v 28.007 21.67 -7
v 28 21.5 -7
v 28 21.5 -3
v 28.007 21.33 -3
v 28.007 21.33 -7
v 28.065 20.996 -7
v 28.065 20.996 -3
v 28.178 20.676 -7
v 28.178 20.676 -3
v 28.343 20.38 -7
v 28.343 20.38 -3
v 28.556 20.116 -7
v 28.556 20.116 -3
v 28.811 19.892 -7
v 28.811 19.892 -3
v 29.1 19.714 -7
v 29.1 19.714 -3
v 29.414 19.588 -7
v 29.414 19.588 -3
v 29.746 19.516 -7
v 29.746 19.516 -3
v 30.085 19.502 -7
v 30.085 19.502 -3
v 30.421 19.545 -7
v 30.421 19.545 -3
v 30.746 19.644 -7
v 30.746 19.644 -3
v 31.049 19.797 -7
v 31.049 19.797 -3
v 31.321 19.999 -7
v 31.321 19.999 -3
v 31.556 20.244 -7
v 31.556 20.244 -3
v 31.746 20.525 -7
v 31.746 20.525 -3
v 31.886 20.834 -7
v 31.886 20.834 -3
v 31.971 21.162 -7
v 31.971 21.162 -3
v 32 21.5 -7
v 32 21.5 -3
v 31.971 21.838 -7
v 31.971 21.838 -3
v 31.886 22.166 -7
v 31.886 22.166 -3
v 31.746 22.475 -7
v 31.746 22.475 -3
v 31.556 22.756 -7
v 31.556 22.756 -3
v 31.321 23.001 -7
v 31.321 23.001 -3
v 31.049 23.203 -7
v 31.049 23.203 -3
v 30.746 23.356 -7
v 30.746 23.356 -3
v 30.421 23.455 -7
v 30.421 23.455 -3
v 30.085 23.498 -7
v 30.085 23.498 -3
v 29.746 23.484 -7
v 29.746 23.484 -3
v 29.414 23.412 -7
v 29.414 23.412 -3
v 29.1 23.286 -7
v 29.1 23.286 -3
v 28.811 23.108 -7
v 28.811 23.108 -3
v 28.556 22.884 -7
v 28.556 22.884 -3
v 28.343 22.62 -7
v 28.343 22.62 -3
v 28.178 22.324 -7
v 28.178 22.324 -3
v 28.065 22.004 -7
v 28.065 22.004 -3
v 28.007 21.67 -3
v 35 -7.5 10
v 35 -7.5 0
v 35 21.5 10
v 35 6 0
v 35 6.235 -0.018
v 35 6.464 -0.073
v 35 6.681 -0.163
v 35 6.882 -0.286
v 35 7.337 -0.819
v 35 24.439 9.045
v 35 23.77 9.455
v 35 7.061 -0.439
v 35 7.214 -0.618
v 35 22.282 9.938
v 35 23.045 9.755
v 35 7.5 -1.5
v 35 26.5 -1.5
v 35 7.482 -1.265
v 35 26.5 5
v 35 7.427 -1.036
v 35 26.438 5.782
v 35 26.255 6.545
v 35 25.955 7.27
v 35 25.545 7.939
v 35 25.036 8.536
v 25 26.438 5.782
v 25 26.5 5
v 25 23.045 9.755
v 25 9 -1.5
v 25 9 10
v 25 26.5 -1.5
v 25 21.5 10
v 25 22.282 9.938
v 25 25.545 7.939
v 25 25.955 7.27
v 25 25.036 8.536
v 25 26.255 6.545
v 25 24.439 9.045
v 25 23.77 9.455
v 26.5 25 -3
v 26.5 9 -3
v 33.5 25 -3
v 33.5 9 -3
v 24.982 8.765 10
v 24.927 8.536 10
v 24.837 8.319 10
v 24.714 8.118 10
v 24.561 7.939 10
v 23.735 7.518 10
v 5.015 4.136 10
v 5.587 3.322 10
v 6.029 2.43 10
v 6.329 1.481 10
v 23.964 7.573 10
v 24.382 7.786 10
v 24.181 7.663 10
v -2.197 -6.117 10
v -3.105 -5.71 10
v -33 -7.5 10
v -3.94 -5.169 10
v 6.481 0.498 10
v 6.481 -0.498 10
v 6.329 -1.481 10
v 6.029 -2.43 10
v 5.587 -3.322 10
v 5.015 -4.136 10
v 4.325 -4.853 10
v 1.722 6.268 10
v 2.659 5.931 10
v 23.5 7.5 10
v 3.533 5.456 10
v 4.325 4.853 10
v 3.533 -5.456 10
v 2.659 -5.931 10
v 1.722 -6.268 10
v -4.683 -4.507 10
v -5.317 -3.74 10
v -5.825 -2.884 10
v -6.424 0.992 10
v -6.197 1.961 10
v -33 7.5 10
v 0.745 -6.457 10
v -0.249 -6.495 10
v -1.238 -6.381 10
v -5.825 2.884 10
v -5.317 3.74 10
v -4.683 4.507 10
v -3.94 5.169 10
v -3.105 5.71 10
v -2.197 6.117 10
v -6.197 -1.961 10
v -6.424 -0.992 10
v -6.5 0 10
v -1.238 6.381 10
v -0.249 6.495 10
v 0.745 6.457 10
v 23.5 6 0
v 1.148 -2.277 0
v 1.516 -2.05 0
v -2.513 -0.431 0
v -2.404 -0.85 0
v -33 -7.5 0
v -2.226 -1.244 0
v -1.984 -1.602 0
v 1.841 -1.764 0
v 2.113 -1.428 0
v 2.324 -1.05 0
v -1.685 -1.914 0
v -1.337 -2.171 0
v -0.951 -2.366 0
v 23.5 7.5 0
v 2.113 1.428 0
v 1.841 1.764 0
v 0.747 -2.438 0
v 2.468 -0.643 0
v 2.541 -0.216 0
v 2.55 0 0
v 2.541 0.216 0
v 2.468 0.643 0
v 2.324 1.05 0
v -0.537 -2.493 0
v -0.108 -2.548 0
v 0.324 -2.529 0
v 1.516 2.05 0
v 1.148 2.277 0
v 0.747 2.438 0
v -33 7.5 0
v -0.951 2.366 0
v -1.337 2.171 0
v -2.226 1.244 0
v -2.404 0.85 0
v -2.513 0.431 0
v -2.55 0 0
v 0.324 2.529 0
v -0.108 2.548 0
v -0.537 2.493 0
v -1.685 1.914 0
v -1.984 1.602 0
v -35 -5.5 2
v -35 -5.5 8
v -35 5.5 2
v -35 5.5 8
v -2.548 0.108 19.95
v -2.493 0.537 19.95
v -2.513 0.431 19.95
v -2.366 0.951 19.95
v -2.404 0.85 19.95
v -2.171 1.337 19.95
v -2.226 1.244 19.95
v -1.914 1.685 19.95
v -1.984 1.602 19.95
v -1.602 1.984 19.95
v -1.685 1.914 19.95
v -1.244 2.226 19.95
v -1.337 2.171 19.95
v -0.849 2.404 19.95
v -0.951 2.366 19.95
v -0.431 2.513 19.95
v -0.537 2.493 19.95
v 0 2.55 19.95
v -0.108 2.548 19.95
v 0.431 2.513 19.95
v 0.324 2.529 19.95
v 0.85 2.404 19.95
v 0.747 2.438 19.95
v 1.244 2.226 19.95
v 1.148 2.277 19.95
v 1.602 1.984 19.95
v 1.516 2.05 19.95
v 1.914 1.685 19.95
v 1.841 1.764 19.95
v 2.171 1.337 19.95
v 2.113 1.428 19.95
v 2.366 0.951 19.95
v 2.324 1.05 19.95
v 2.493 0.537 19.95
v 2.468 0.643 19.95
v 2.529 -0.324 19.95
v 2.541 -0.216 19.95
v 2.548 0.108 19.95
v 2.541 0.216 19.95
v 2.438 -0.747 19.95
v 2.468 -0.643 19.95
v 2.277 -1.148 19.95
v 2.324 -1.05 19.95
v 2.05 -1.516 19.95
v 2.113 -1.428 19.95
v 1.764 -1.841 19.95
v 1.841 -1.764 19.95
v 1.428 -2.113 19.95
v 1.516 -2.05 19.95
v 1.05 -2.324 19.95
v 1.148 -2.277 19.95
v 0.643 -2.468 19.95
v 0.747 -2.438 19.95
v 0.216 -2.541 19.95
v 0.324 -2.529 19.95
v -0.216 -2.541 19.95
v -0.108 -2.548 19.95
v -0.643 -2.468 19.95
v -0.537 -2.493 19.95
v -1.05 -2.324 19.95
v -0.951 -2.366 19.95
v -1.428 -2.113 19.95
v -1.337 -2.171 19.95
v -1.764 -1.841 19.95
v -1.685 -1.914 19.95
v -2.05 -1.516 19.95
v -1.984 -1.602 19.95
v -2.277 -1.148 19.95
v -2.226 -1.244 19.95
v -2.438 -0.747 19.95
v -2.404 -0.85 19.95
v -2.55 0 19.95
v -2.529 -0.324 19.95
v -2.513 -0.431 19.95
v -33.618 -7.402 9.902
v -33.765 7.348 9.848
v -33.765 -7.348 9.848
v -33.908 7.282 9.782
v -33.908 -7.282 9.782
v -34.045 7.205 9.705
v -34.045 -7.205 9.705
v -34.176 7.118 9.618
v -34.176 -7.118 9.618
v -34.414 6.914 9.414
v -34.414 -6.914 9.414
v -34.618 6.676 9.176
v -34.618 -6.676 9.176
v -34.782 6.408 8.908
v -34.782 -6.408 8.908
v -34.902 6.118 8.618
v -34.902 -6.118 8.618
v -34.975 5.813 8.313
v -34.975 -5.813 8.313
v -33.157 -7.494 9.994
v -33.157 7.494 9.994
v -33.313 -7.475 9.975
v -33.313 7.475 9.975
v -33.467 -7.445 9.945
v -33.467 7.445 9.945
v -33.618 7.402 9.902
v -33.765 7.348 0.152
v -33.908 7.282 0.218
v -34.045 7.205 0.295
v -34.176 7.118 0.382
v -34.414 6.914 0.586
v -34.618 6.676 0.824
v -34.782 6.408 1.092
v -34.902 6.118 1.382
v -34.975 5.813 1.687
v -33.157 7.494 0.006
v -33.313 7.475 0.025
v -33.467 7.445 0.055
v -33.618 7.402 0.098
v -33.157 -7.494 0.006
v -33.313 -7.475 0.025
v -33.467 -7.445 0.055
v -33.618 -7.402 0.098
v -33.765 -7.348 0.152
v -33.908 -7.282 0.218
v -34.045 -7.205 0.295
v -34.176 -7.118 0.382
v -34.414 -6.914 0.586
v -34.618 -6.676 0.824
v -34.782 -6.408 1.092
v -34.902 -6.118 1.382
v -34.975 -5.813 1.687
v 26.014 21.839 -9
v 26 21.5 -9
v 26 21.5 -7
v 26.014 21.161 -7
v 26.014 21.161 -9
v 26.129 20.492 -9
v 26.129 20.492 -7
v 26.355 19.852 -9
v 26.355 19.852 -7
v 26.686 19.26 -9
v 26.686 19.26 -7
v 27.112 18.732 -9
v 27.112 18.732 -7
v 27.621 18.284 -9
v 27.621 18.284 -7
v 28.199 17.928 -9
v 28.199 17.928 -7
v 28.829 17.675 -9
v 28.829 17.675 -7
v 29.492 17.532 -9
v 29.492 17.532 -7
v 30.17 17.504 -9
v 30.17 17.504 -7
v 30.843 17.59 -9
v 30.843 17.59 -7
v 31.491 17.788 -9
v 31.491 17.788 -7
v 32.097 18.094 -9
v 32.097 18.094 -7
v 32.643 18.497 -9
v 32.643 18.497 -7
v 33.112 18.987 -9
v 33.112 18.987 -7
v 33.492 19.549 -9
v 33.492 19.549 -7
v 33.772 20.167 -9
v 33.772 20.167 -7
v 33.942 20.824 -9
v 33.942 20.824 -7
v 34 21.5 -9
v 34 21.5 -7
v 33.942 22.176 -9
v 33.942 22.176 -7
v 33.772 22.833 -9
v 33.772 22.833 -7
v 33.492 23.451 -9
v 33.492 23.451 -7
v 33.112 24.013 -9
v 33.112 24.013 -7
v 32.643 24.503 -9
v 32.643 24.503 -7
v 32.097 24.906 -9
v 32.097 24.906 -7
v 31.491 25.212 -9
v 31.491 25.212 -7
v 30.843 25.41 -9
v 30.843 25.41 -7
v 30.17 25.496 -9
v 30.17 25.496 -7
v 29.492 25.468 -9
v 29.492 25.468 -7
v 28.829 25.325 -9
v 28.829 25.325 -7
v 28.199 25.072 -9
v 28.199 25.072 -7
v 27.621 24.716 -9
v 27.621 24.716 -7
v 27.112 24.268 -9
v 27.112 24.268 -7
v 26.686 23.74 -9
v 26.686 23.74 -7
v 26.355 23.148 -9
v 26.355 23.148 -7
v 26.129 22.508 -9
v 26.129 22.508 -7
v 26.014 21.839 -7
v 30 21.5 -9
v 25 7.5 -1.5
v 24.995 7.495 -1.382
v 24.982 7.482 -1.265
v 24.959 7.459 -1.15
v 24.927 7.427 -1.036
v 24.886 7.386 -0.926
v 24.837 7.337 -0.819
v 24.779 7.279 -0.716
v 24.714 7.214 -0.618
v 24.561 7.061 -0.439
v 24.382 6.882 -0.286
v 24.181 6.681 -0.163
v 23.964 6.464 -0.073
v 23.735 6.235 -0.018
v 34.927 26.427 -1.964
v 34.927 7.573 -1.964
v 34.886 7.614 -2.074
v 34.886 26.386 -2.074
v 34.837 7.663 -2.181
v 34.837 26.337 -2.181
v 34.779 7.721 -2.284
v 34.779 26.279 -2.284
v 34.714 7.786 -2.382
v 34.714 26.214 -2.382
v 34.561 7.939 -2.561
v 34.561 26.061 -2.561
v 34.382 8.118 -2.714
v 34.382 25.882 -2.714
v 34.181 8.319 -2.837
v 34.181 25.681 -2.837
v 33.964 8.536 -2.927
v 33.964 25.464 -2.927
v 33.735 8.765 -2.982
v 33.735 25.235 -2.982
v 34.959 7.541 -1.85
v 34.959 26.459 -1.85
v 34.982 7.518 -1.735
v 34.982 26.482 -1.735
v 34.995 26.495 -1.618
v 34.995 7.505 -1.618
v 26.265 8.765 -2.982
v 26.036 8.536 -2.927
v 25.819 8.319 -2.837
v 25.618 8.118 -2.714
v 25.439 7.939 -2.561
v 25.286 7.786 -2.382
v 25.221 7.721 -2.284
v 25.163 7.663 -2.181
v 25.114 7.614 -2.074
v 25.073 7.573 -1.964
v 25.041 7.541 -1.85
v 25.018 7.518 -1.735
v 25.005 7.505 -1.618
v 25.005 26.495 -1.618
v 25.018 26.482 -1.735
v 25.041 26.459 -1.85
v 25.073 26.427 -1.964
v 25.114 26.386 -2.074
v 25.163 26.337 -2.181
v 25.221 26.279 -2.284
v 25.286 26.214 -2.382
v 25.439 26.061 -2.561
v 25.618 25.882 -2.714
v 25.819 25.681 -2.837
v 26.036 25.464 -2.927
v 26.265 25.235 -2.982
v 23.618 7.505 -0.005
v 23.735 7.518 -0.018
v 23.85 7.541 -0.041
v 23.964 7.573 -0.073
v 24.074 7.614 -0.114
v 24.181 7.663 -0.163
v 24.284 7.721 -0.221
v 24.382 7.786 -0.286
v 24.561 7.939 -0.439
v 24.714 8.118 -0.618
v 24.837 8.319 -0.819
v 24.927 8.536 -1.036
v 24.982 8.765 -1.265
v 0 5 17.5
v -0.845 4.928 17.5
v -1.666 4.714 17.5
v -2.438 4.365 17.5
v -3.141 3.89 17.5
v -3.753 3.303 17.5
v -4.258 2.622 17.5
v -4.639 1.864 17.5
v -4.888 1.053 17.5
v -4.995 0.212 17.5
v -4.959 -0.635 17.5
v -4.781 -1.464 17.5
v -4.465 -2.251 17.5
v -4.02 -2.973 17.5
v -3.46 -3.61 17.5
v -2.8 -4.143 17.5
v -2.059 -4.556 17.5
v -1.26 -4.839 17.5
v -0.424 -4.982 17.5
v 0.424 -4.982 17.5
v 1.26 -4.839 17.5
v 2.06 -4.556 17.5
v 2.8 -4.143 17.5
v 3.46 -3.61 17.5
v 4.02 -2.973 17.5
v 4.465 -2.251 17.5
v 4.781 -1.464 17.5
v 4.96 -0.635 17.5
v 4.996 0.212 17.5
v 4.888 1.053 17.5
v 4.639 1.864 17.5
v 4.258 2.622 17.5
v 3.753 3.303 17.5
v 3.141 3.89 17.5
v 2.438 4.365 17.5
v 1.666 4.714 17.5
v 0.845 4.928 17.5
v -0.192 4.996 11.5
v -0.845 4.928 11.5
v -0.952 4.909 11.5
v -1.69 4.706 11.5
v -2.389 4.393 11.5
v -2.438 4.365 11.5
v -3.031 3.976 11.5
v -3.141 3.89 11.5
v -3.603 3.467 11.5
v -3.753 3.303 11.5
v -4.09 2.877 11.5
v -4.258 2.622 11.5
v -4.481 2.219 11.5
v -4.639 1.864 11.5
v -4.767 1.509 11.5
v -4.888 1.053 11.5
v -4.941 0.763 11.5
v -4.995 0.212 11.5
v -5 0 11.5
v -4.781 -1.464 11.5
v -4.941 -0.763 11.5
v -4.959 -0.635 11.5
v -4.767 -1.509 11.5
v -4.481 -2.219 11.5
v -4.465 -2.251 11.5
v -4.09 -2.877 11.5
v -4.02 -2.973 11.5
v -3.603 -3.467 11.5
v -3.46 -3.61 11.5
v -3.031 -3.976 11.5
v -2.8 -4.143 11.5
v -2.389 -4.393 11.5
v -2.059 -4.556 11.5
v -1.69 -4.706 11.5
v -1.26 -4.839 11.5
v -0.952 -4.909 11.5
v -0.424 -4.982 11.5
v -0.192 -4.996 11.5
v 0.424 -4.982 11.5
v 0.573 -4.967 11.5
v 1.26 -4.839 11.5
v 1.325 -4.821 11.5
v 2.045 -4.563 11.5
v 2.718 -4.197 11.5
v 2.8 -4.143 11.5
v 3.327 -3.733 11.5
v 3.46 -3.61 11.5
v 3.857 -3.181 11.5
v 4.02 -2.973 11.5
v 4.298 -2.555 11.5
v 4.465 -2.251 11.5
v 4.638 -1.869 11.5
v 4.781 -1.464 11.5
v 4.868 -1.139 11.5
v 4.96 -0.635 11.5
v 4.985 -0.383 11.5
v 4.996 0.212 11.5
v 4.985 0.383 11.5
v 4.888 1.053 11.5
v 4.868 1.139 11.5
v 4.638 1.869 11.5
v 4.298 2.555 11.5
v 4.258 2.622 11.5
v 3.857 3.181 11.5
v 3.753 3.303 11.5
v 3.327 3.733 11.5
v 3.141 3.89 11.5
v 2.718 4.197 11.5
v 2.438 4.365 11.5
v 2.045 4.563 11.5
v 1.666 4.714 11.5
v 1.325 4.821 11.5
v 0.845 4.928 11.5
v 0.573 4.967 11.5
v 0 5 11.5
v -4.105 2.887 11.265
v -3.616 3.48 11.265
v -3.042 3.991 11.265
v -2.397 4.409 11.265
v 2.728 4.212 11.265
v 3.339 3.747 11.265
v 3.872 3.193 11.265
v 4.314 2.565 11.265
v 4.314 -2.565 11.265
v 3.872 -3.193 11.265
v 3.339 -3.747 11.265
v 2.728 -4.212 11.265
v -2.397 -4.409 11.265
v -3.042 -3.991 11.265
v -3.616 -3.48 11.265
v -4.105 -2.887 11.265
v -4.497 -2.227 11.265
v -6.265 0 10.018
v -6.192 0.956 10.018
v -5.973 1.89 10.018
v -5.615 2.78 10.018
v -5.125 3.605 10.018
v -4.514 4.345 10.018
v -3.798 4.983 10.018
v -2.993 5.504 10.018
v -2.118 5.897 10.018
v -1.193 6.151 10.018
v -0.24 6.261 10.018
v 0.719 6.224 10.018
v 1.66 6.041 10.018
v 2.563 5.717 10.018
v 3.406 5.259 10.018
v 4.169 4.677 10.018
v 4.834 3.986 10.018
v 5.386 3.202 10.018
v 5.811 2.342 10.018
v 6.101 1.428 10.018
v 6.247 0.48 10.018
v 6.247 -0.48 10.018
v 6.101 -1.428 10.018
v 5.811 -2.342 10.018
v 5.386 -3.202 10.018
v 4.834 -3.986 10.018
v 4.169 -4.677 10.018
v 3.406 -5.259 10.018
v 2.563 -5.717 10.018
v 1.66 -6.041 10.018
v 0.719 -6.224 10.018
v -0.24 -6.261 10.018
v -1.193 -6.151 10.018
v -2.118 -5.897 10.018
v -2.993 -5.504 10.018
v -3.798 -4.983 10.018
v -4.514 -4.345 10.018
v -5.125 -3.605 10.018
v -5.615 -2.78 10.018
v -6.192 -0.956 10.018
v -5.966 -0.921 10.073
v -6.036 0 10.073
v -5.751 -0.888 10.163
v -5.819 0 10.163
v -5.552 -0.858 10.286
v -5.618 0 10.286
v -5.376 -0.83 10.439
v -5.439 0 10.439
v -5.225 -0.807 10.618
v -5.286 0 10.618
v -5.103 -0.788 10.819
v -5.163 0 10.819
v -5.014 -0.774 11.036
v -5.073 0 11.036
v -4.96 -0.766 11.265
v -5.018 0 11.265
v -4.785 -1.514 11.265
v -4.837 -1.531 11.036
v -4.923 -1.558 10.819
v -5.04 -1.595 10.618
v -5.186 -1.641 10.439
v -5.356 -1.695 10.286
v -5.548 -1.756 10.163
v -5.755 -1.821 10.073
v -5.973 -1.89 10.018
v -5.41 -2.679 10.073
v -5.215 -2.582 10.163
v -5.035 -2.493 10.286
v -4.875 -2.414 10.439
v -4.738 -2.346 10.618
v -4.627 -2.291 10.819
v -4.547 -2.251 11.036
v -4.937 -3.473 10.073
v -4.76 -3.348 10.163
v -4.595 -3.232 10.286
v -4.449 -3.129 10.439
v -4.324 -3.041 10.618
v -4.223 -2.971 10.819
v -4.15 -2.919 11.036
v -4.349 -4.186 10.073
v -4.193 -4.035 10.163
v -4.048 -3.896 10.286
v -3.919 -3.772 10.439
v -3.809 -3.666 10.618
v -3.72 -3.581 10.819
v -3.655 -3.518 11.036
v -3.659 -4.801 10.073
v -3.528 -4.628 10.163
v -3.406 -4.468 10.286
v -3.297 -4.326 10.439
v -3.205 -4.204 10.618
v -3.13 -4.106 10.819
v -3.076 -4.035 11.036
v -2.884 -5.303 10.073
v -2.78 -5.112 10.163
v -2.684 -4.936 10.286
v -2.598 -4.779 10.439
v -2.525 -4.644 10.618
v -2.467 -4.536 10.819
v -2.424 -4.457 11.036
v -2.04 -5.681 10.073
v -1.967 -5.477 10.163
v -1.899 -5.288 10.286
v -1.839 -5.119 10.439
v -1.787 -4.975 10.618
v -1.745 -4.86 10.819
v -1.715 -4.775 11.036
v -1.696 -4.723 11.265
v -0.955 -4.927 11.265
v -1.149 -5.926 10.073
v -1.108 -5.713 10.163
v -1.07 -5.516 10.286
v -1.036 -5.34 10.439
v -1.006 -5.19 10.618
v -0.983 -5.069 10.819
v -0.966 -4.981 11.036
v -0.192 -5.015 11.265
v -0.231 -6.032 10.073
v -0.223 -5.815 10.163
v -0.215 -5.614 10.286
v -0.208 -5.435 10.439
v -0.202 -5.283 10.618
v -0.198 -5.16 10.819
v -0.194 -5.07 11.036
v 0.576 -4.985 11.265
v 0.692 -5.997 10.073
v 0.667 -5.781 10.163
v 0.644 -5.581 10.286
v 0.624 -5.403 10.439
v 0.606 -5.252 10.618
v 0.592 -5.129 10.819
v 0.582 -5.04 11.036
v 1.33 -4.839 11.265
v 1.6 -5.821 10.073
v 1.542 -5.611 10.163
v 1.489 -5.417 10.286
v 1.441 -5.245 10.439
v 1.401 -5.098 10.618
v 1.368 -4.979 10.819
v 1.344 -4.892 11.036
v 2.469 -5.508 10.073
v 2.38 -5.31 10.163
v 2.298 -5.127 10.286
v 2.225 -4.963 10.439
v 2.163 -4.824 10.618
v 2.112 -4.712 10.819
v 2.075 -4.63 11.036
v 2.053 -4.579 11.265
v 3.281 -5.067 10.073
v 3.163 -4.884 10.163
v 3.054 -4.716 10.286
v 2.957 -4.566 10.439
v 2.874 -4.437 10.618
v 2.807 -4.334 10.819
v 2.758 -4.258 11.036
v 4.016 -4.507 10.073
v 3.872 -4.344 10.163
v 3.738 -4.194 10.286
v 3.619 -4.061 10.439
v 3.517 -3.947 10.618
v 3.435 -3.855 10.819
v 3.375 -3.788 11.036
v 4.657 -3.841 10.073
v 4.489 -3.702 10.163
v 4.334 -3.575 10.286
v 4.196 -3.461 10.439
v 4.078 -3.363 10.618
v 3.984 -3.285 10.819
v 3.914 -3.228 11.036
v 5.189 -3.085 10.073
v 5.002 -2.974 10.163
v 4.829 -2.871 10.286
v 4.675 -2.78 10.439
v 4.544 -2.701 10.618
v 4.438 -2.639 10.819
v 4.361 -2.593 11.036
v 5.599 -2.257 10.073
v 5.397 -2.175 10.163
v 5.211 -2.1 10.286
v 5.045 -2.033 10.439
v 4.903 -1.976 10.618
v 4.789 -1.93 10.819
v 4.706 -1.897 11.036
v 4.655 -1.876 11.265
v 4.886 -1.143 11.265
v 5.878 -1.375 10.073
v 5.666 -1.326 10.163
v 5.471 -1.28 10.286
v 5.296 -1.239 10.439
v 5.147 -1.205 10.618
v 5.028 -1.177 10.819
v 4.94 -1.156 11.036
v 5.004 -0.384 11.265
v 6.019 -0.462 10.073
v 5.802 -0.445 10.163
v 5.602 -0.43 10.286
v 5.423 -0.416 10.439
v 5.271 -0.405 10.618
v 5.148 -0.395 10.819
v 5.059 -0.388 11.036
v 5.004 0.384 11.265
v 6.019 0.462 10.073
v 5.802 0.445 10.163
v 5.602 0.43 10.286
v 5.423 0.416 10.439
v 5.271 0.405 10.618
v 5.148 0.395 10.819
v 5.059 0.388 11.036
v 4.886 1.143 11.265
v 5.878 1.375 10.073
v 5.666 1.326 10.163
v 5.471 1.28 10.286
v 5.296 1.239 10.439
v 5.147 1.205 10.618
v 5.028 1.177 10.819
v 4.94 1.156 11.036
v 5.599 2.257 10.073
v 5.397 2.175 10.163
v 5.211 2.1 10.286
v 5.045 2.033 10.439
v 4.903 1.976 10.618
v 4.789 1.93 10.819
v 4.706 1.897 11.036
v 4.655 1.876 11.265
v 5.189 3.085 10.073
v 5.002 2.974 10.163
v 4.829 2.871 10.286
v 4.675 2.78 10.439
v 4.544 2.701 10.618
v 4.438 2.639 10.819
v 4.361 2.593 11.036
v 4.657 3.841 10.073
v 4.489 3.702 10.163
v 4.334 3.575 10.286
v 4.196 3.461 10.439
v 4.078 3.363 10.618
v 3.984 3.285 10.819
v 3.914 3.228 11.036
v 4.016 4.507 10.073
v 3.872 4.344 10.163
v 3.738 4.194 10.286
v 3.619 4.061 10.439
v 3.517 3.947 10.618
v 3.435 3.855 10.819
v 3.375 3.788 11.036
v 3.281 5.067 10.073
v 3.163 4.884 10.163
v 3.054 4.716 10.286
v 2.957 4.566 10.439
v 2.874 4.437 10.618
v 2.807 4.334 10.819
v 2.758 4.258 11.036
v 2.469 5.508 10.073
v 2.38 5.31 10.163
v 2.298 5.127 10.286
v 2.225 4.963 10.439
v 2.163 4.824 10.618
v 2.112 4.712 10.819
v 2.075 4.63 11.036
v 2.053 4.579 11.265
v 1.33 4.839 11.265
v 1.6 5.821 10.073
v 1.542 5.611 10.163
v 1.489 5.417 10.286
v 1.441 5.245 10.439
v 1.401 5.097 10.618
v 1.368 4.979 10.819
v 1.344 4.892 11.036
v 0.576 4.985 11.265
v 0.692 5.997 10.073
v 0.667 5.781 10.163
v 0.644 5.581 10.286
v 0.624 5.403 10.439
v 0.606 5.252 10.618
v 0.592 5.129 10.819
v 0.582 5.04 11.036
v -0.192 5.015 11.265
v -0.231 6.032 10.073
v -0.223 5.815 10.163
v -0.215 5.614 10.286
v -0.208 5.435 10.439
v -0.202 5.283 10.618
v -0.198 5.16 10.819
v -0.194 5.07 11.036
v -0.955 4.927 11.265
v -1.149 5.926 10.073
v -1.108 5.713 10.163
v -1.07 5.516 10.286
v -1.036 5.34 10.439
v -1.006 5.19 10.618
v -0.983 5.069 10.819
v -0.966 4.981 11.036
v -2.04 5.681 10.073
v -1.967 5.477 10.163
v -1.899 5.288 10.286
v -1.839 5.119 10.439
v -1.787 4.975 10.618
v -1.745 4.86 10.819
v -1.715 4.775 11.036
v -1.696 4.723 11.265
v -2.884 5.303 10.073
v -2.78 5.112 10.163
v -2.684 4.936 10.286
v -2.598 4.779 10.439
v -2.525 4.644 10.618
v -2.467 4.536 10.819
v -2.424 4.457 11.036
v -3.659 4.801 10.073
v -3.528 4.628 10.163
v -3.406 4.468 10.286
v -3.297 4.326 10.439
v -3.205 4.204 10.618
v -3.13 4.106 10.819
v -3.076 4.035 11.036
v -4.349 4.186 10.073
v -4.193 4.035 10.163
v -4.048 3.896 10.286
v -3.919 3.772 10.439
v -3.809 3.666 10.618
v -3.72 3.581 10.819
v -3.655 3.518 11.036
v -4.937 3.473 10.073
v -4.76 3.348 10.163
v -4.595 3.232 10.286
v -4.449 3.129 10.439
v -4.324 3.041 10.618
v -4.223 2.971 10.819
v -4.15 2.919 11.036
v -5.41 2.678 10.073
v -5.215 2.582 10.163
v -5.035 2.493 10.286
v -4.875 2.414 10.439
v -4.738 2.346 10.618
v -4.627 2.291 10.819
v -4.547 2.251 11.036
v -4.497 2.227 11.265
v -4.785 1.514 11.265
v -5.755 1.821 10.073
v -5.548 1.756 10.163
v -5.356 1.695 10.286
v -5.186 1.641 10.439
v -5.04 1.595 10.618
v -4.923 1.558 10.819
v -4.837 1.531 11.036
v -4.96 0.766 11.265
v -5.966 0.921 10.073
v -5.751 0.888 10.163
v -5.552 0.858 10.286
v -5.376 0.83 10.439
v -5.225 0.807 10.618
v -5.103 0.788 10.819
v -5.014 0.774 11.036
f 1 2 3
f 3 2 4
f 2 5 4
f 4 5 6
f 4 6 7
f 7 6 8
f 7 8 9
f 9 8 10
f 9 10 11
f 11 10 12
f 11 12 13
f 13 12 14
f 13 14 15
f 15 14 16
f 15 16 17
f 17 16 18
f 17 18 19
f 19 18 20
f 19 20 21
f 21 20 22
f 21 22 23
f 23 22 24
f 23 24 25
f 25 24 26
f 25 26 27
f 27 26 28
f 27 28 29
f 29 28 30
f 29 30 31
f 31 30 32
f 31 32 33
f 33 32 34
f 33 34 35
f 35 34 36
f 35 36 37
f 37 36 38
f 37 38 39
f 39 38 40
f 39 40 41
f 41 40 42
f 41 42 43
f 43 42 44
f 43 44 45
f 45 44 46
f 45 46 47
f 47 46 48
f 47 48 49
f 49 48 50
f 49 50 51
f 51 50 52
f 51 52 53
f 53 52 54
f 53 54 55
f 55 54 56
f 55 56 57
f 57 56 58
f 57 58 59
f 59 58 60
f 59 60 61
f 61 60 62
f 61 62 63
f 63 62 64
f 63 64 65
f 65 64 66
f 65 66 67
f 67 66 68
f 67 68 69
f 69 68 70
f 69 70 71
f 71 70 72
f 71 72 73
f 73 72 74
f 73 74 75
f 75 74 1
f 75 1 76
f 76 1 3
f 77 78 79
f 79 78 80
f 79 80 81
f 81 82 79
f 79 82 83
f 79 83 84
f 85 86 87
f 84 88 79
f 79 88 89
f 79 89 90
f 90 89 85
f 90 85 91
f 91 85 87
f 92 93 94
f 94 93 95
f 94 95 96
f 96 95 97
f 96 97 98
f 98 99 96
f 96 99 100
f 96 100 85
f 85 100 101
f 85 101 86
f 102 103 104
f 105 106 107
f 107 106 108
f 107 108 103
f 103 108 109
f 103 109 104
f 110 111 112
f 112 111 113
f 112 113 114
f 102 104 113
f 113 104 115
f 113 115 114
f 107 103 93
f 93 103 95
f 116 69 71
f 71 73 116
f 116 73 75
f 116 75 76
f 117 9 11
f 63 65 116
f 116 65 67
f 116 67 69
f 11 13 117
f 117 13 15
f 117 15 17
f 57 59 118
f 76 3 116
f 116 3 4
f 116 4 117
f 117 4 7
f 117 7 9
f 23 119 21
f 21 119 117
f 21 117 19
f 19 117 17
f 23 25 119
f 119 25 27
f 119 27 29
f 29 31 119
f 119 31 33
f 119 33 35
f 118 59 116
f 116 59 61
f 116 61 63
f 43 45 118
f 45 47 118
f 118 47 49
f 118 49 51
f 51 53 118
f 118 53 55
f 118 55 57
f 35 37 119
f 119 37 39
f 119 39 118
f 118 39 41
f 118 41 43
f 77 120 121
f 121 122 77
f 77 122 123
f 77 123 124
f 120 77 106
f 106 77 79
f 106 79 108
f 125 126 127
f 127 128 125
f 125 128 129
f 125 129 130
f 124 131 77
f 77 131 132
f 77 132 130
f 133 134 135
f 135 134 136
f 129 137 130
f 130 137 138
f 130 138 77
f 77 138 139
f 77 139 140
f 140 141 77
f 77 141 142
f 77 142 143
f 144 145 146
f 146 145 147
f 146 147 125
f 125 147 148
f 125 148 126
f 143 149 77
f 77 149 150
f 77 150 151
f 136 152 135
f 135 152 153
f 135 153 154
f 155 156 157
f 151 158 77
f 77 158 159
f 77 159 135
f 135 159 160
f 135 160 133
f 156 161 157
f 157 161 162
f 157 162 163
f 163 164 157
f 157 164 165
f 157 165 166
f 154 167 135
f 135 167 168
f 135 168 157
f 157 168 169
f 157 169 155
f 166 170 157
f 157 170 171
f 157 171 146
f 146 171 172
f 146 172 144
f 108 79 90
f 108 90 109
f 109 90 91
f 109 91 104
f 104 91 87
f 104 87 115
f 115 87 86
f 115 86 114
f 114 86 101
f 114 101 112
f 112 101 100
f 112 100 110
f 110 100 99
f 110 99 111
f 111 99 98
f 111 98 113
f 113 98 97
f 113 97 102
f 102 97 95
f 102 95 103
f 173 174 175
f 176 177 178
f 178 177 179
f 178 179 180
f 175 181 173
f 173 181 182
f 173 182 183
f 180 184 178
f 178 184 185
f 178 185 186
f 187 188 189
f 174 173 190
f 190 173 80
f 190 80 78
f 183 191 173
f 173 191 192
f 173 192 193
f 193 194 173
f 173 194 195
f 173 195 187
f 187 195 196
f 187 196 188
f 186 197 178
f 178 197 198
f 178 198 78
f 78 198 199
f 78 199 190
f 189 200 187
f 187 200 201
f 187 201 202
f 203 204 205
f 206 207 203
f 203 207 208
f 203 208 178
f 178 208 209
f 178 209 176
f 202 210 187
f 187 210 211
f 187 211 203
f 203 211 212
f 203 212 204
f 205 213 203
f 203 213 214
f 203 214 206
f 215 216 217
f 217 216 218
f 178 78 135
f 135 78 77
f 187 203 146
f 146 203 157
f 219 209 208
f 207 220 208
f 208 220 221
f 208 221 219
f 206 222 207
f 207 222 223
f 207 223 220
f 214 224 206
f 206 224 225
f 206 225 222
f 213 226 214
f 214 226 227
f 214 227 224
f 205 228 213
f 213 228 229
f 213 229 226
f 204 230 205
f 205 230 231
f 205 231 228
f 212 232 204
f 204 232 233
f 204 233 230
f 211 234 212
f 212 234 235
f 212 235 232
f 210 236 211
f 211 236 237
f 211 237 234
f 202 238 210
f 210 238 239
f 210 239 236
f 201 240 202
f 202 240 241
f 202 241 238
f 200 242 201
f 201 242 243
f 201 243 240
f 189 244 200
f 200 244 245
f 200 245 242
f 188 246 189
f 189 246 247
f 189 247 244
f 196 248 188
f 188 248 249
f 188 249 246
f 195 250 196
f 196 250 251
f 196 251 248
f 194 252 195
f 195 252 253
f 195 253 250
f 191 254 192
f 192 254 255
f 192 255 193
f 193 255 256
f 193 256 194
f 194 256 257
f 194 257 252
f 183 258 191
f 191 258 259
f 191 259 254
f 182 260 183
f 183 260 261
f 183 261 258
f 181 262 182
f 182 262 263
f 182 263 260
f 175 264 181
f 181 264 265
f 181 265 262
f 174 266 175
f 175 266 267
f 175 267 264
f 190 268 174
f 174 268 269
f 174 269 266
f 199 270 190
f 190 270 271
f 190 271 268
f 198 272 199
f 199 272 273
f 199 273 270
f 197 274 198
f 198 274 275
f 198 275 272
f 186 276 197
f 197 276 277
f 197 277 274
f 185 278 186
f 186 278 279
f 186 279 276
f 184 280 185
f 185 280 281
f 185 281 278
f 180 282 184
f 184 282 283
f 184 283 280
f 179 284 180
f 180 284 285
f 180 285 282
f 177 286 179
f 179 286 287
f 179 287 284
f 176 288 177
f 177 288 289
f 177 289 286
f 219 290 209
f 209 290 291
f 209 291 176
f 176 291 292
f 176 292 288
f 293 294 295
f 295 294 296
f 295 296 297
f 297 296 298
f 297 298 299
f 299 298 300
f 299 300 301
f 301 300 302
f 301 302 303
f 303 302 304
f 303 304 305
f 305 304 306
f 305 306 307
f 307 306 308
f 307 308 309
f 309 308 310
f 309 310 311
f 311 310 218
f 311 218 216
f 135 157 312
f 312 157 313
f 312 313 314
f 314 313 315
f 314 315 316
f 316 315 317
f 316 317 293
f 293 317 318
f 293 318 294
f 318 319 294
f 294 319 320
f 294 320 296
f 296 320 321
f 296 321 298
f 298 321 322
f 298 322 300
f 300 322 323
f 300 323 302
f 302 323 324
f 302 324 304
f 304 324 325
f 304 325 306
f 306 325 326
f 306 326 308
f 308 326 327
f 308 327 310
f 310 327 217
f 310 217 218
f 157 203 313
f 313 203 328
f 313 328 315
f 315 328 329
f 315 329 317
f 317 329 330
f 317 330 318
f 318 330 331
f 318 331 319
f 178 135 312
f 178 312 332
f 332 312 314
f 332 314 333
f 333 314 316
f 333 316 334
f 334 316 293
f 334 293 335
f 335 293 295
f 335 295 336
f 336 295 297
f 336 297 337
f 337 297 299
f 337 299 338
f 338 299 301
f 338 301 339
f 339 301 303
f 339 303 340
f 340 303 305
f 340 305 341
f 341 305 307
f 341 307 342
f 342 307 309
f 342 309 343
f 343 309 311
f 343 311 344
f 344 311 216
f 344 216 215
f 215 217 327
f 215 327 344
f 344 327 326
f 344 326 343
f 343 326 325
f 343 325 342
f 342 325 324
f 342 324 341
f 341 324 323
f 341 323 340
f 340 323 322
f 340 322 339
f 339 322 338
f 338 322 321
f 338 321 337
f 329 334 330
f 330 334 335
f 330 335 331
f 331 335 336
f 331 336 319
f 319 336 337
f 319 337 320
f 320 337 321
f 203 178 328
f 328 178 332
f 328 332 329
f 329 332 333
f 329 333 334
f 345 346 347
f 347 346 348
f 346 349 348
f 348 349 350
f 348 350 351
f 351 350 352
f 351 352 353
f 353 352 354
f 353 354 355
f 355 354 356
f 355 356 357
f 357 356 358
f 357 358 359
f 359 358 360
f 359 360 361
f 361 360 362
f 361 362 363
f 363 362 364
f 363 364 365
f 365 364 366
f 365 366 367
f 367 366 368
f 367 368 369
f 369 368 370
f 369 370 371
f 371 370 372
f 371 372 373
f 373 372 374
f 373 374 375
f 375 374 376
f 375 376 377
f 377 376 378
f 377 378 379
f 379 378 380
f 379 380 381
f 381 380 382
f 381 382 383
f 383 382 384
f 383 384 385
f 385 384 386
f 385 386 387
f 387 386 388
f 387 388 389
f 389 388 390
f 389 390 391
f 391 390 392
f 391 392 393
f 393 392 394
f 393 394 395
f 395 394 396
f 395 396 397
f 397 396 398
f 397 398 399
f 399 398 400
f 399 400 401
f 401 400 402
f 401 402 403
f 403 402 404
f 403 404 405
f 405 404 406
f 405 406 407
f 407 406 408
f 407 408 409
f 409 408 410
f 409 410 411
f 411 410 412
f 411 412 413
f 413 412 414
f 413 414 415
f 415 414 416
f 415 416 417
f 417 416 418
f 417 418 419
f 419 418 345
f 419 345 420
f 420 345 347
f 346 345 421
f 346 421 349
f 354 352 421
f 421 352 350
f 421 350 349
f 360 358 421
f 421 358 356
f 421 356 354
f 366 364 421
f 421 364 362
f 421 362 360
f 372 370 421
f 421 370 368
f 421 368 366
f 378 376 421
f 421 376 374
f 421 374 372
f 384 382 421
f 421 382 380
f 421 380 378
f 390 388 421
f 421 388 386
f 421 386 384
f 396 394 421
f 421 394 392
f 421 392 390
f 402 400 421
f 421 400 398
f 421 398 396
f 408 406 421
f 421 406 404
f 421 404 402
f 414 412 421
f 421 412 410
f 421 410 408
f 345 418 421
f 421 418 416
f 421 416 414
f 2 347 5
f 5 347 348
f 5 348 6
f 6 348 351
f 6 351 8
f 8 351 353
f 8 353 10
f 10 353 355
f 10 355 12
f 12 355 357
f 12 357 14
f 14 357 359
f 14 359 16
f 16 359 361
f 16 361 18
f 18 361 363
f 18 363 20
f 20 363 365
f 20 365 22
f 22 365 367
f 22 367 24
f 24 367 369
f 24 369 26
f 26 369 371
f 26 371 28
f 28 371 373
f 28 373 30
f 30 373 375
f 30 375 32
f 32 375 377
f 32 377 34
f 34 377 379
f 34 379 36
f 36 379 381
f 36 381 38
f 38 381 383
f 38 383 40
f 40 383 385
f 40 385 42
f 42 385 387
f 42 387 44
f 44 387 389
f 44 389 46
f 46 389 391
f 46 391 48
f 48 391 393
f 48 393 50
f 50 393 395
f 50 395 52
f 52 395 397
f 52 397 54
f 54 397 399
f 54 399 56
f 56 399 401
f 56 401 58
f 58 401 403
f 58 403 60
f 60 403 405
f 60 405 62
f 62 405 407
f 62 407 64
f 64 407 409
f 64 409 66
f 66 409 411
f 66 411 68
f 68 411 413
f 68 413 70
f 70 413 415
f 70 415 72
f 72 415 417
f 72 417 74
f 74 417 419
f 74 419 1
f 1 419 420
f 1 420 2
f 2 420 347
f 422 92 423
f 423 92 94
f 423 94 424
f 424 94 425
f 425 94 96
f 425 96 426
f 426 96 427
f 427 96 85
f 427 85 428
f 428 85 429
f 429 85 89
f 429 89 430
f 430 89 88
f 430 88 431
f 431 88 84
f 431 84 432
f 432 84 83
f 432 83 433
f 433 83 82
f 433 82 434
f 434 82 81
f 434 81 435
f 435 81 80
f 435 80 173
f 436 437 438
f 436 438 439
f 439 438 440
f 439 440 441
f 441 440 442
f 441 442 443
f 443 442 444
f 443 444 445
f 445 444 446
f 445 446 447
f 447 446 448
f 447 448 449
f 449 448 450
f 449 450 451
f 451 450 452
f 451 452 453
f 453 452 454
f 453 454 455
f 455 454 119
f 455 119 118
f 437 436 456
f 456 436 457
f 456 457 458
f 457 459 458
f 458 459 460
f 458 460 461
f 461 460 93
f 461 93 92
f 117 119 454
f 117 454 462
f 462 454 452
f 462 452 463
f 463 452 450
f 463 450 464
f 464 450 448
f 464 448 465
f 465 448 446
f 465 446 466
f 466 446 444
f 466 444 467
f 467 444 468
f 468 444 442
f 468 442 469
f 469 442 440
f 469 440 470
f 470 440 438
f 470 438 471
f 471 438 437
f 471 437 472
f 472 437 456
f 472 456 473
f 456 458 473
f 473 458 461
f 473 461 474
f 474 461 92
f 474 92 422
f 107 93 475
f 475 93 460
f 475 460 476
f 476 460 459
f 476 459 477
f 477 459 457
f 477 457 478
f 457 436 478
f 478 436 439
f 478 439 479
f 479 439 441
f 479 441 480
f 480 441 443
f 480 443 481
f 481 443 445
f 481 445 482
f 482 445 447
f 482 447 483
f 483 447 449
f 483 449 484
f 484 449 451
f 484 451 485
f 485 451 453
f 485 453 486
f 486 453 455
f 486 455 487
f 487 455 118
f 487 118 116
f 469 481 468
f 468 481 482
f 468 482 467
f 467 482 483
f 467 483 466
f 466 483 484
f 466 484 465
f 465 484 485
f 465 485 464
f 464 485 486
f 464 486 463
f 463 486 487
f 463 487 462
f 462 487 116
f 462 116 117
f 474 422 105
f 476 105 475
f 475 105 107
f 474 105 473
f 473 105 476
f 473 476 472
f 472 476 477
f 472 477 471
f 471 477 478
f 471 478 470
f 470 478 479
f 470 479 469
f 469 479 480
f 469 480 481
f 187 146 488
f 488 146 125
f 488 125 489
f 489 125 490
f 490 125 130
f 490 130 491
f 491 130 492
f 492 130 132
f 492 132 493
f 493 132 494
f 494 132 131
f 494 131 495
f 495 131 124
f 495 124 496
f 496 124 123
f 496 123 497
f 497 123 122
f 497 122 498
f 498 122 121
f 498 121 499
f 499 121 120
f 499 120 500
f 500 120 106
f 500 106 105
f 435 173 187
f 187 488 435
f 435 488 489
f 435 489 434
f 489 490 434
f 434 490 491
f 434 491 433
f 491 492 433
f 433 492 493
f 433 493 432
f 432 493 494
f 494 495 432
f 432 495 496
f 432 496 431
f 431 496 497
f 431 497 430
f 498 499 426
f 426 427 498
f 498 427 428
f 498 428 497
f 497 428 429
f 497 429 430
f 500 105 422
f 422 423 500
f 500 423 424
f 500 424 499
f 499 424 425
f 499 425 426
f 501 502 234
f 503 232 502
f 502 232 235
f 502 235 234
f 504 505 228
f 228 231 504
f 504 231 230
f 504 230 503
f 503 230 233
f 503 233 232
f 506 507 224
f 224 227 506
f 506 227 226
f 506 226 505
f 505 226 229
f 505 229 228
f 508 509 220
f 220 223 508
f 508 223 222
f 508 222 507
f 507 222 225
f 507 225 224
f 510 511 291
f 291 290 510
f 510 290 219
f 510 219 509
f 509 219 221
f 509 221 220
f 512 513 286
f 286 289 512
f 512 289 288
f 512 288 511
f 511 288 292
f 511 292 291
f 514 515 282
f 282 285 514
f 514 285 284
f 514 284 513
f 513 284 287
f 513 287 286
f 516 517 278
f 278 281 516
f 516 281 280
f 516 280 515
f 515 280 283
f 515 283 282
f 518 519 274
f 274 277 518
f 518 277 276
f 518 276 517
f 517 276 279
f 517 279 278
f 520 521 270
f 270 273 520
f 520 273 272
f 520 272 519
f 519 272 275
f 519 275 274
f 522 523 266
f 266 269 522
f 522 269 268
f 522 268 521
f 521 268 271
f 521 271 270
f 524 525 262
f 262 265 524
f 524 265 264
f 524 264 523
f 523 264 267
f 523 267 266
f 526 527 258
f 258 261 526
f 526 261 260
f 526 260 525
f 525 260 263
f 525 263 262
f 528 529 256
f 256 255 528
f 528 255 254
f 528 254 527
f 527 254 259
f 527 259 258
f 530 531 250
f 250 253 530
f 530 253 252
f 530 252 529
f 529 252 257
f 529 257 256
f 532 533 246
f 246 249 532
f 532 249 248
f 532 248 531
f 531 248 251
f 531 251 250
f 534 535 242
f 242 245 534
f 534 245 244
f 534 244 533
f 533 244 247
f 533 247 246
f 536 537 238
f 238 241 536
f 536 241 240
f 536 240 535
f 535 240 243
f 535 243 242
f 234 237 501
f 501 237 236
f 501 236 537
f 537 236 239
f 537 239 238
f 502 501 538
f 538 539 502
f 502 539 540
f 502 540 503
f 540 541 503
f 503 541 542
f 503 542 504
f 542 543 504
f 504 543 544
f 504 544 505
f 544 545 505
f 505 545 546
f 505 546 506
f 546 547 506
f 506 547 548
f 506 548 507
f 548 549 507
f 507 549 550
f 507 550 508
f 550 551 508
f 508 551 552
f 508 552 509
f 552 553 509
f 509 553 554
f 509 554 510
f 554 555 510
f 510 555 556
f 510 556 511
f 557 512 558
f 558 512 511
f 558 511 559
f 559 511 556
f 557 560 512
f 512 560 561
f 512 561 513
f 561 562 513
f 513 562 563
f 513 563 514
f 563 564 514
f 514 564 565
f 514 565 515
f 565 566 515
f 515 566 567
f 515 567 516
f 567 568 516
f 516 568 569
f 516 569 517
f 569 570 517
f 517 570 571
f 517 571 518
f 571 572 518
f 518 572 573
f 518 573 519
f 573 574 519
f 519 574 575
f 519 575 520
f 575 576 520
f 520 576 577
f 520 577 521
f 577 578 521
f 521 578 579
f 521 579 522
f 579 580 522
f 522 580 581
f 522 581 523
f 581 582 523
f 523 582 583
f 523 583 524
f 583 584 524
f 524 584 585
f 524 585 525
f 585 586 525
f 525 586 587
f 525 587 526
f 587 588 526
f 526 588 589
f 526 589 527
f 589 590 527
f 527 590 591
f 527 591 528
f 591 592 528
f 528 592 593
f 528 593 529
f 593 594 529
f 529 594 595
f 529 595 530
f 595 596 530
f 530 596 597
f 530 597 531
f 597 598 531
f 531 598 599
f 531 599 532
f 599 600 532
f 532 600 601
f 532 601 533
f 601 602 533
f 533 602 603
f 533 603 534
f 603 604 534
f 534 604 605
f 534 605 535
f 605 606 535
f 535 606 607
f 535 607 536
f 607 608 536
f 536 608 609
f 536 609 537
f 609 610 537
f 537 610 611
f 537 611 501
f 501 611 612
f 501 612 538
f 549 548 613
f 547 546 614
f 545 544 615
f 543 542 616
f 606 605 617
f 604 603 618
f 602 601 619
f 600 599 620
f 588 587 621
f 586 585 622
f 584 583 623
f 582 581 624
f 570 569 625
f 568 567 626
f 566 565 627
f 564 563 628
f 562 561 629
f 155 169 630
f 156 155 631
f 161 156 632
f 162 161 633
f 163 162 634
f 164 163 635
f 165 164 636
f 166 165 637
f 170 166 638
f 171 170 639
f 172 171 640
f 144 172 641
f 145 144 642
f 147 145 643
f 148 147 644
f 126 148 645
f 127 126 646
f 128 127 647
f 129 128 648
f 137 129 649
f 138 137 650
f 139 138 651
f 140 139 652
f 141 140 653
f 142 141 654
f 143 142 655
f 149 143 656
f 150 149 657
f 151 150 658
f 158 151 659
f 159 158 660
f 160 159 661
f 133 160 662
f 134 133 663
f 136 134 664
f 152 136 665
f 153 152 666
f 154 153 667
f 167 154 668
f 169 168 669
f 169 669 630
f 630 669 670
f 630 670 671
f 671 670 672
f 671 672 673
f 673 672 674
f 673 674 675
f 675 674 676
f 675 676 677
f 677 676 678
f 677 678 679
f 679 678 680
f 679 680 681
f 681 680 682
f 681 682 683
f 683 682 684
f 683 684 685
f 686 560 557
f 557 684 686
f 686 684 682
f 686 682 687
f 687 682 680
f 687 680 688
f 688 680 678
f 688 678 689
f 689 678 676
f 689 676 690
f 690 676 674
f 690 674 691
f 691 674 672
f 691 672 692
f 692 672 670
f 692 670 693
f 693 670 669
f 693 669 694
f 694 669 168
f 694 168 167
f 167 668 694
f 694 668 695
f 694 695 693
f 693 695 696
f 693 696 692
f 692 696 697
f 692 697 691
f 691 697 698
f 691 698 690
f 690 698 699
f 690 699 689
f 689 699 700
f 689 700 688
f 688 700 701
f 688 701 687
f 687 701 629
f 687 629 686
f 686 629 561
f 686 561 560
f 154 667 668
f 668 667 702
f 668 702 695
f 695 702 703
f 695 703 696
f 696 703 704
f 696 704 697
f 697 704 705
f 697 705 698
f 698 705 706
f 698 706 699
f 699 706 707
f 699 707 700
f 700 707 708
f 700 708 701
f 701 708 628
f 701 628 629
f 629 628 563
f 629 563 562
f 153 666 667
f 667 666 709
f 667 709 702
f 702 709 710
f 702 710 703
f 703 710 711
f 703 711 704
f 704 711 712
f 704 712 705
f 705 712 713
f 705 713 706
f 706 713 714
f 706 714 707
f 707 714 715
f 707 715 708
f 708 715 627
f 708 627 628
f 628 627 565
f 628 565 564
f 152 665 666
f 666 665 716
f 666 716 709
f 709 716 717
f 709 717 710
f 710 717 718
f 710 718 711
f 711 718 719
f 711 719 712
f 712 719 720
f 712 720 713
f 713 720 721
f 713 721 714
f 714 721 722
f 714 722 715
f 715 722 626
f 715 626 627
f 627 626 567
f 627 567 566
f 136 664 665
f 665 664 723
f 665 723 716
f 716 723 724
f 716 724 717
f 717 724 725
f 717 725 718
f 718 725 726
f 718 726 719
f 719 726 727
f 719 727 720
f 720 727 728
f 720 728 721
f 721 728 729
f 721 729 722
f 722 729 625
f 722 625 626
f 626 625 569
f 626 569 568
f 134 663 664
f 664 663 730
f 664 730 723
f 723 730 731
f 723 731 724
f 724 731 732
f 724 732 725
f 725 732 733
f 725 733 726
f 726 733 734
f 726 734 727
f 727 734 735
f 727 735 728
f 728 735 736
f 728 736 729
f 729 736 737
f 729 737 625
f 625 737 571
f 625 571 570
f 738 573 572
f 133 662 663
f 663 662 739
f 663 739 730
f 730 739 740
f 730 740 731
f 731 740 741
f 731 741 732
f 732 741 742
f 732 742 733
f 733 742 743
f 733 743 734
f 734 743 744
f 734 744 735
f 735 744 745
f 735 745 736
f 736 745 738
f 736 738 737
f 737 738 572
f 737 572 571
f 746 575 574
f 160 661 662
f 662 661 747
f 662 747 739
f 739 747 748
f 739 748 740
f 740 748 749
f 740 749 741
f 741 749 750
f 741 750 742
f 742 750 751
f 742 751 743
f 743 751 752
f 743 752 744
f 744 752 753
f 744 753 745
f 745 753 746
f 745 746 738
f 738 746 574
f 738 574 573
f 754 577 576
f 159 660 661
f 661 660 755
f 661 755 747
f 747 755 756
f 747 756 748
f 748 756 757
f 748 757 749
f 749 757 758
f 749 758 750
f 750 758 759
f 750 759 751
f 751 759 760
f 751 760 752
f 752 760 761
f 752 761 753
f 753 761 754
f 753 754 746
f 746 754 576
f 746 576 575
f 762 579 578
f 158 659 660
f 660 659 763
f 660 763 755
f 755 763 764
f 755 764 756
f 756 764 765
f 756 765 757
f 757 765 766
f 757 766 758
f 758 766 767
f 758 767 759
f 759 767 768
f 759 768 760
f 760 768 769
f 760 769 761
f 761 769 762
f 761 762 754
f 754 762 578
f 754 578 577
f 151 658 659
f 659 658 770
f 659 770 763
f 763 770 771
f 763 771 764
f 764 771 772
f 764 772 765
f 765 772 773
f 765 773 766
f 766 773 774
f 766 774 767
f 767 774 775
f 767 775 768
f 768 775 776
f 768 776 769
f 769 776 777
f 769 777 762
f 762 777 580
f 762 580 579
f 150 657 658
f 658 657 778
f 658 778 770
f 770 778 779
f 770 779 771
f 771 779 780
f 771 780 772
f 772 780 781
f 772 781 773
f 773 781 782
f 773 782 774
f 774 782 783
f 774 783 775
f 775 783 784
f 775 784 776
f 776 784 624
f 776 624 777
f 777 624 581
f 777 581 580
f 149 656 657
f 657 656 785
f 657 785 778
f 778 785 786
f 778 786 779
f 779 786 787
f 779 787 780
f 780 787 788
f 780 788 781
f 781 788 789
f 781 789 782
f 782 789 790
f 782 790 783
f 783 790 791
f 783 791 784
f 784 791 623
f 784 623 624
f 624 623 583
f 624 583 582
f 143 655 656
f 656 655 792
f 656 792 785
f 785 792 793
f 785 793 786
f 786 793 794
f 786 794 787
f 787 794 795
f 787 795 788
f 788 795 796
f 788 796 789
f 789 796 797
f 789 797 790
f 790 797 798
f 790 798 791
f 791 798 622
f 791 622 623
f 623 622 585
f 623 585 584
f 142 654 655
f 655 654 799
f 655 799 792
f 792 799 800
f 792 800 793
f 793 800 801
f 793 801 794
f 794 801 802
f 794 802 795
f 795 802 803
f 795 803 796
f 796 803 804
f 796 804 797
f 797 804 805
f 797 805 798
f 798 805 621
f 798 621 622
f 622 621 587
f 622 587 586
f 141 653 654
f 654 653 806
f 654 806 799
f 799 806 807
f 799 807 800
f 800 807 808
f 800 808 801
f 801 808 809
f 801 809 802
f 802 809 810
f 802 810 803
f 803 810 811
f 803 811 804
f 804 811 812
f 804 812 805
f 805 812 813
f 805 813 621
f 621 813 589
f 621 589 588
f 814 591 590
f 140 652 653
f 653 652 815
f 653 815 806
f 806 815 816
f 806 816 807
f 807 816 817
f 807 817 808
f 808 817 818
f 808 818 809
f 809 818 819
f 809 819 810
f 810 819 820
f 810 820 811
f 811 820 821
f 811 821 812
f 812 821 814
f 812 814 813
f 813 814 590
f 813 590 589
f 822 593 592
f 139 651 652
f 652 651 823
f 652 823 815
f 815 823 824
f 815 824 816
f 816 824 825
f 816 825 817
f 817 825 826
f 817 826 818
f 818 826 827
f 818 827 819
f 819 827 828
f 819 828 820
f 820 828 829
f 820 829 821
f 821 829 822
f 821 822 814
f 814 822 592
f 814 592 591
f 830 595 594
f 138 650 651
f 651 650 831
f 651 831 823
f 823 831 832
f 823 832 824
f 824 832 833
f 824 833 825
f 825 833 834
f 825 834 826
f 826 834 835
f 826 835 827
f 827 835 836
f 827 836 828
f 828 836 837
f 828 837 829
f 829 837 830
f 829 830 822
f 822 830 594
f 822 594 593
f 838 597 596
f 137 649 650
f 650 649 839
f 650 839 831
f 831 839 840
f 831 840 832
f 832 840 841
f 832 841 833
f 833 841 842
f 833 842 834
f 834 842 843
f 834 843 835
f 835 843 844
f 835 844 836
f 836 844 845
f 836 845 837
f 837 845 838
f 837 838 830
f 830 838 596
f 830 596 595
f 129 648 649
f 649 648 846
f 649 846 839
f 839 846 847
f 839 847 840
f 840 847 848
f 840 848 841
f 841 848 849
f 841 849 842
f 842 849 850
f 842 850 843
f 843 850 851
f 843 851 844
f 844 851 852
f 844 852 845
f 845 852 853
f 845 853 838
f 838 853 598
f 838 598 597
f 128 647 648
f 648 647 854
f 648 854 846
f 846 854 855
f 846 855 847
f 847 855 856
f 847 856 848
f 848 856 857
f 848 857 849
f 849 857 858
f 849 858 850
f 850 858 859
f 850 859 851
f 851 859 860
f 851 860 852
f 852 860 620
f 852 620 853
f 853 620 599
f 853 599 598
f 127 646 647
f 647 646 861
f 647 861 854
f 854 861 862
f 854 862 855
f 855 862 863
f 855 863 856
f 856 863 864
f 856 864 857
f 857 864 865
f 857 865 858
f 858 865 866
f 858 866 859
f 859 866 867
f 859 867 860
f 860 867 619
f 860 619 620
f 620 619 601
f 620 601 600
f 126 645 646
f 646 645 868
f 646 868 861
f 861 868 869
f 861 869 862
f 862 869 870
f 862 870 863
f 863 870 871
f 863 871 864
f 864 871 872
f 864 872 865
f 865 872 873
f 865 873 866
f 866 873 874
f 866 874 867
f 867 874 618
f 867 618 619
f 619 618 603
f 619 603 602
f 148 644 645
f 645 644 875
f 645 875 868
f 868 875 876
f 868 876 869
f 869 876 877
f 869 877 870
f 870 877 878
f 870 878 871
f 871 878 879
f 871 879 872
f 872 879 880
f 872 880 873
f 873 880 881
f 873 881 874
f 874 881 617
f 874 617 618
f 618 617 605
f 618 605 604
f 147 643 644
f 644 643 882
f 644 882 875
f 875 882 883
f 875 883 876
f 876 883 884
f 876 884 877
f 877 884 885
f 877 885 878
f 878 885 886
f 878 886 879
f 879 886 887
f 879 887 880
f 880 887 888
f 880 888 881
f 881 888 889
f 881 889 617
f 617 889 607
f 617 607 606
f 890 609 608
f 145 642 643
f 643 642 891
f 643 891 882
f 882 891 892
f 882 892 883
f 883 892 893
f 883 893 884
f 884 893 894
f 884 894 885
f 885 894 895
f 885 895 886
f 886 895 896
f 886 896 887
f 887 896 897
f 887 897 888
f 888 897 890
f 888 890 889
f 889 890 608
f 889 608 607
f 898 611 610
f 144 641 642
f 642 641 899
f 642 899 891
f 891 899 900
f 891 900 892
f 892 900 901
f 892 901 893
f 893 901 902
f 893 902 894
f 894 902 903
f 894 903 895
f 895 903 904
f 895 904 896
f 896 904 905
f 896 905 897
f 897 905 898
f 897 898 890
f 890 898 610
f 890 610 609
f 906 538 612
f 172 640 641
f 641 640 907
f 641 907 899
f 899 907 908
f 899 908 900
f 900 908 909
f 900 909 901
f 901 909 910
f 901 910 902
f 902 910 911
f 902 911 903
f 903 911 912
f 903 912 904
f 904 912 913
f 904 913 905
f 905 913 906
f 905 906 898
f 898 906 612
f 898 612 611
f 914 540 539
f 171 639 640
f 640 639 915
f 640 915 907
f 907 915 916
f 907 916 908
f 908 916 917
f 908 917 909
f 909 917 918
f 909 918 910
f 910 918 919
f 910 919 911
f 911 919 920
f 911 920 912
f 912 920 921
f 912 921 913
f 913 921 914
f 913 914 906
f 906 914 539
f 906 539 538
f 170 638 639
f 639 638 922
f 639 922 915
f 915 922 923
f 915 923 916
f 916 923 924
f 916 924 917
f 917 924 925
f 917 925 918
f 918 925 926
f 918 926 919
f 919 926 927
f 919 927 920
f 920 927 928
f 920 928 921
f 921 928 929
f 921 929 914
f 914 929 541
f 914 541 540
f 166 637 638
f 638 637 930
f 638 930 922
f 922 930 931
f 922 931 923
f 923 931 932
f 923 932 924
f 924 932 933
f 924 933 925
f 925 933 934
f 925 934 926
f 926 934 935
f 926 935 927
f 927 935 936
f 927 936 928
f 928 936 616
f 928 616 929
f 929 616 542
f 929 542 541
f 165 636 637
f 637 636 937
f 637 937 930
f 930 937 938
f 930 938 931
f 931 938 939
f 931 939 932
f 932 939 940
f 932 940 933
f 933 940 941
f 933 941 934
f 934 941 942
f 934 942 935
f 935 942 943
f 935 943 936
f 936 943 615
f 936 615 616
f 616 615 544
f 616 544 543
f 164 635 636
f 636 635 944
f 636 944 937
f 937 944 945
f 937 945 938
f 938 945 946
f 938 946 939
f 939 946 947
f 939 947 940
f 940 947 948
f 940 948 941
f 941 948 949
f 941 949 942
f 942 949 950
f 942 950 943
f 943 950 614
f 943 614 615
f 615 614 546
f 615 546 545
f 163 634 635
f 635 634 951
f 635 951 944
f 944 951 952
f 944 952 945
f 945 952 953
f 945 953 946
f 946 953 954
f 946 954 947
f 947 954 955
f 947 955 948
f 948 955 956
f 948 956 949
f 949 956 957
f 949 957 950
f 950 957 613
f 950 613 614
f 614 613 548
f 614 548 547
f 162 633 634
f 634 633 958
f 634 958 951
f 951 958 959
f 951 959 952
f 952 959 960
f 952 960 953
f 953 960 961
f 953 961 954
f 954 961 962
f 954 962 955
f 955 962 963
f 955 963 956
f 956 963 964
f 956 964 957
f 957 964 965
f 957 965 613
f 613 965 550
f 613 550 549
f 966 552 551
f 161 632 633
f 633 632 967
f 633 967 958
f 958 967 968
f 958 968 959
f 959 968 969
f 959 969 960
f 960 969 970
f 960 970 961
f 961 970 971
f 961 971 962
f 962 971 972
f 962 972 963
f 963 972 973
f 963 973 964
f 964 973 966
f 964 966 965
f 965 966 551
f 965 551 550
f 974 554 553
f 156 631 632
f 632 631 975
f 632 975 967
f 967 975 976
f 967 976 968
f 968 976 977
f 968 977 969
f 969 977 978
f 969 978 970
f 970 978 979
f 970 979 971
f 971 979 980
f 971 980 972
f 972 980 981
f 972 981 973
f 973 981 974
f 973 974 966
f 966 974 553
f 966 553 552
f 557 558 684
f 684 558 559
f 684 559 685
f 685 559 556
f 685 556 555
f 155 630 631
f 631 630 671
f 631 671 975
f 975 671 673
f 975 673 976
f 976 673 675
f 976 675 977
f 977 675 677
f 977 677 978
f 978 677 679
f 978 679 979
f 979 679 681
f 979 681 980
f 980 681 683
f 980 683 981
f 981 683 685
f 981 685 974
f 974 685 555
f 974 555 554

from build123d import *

# Parameters (mm, degrees)
SKETCH1_W                = 70
SKETCH1_H                = 15
SKETCH1_R                = 2.55
BOSS_EXTRUDE1_DEPTH      = 10
BOSS_EXTRUDE5_DEPTH      = 3
BOSS_EXTRUDE5_DEPTH_BACK = 10
SKETCH5_W                = 10
SKETCH5_H                = 19
FILLET1_R                = 2
SKETCH3_R                = 2
BOSS_EXTRUDE6_DEPTH      = 4
SKETCH6_R                = 4
BOSS_EXTRUDE7_DEPTH      = 2
FILLET4_R                = 5
FILLET3_R                = 1.5
FILLET9_R                = 1.5
SKETCH9_R                = 2.55
CUT_EXTRUDE1_DEPTH       = 10
FILLET10_R               = 1.5


# Some blends are built 0.0001 mm under size
with BuildPart() as part:
    # Sketch1 → Boss-Extrude1 (new body)
    with BuildSketch(Plane.XY):
        Rectangle(SKETCH1_W, SKETCH1_H)
        Circle(SKETCH1_R, mode=Mode.SUBTRACT)
    extrude(amount=BOSS_EXTRUDE1_DEPTH)

    # Fillet1
    fillet1_edges = [part.edges().sort_by_distance(p)[0] for p in [
        (-35, 0, 10),
        (-35, 0, 0),
        (-35, 7.5, 5),
        (-35, -7.5, 5),
    ]]
    fillet(fillet1_edges, radius=FILLET1_R)


with BuildPart() as body_2:
    # Sketch5 → Boss-Extrude5 (new, two sides: drawn at the far end of the back side and taken through both)
    with BuildSketch(Plane(origin=(0, 0, 0), x_dir=(-1, 0, 0), z_dir=(0, 0, -1)).offset(-BOSS_EXTRUDE5_DEPTH_BACK)):
        with Locations((-30, 17)):
            Rectangle(SKETCH5_W, SKETCH5_H)
    extrude(amount=BOSS_EXTRUDE5_DEPTH + BOSS_EXTRUDE5_DEPTH_BACK)

    # Fillet4
    fillet4_edges = [body_2.edges().sort_by_distance(p)[0] for p in [
        (30, 26.5, 10),
    ]]
    fillet(fillet4_edges, radius=FILLET4_R)


with BuildPart() as body_3:
    # Sketch3 → Boss-Extrude6 (new body)
    with BuildSketch(Plane(origin=(-35, 0, -3), x_dir=(-1, 0, 0), z_dir=(0, 0, -1))):
        with Locations((-65, 21.5)):
            Circle(SKETCH3_R)
    extrude(amount=BOSS_EXTRUDE6_DEPTH)


with BuildPart() as body_4:
    # Sketch6 → Boss-Extrude7 (new body)
    with BuildSketch(Plane(origin=(0, 0, -7), x_dir=(-1, 0, 0), z_dir=(0, 0, -1))):
        with Locations((-30, 21.5)):
            Circle(SKETCH6_R)
    extrude(amount=BOSS_EXTRUDE7_DEPTH)


with BuildPart() as body_3_1:
    add(body_3.part)

    # Combine1: union body 2, body 4, part
    add(body_2.part)
    add(body_4.part)
    add(part.part)

    # Fillet3
    # the kernel refuses this fillet: 1.5 mm, written as the material it adds along each edge
    with BuildSketch(Plane(origin=(35, 7.5, 0), x_dir=(0, 0, -1), z_dir=(-1, 0, 0))) as fillet3_piece_1:
        with BuildLine():
            CenterArc((FILLET3_R, FILLET3_R), FILLET3_R, 180, 90)
            Line((0, FILLET3_R), (0, 0))
            Line((0, 0), (FILLET3_R, 0))
        make_face()
    extrude(amount=10)
    # the kernel refuses this fillet: 1.5 mm, written as the material it takes off along each edge
    with BuildSketch(Plane(origin=(21.25, 7.5, -3), x_dir=(0, 1, 0), z_dir=(1, 0, 0))) as fillet3_2_piece_1:
        with BuildLine():
            CenterArc((FILLET3_R, FILLET3_R), FILLET3_R, 180, 90)
            Line((0, FILLET3_R), (0, 0))
            Line((0, 0), (FILLET3_R, 0))
        make_face()
    extrude(amount=17.5, mode=Mode.SUBTRACT)
    with BuildSketch(Plane(origin=(25, 30.25, -3), x_dir=(0, 0, 1), z_dir=(0, -1, 0))) as fillet3_2_piece_2:
        with BuildLine():
            CenterArc((FILLET3_R, -FILLET3_R), FILLET3_R, 90, 90)
            Line((0, -FILLET3_R), (0, 0))
            Line((0, 0), (FILLET3_R, 0))
        make_face()
    extrude(amount=26.5, mode=Mode.SUBTRACT)
    with BuildSketch(Plane(origin=(38.75, 26.5, -3), x_dir=(0, 0, 1), z_dir=(-1, 0, 0))) as fillet3_2_piece_3:
        with BuildLine():
            CenterArc((FILLET3_R, -FILLET3_R), FILLET3_R, 90, 90)
            Line((0, -FILLET3_R), (0, 0))
            Line((0, 0), (FILLET3_R, 0))
        make_face()
    extrude(amount=17.5, mode=Mode.SUBTRACT)
    with BuildSketch(Plane(origin=(35, 3.75, -3), x_dir=(-1, 0, 0), z_dir=(0, 1, 0))) as fillet3_2_piece_4:
        with BuildLine():
            CenterArc((FILLET3_R, FILLET3_R), FILLET3_R, 180, 90)
            Line((0, FILLET3_R), (0, 0))
            Line((0, 0), (FILLET3_R, 0))
        make_face()
    extrude(amount=26.5, mode=Mode.SUBTRACT)

    # Fillet9
    fillet9_edges = [body_3_1.edges().sort_by_distance(p)[0] for p in [
        (25, 6.75, 0),
        (25, 7.5, 5),
    ]]
    fillet(fillet9_edges, radius=FILLET9_R - 0.0001)  # a hair under: the kernel refuses the full size

    # Sketch8 → Revolve1 (revolve)
    with BuildSketch(Plane(origin=(0, 0, 0), x_dir=(0, 0, -1), z_dir=(1, 0, 0))):
        Polygon((-10, 0), (-20, 0), (-20, 2.5), (-17.5, 5), (-10, 5), align=None)
    revolve(axis=Axis((0, 0, 10), (0, 0, 1)))

    # Sketch9 → Cut-Extrude1 (cut)
    with BuildSketch(Plane(origin=(0, 0, 10), x_dir=(-1, 0, 0), z_dir=(0, 0, -1))):
        with Locations(Location((0, 0, 0), (0, 0, 90))):
            Circle(SKETCH9_R)
    extrude(amount=-CUT_EXTRUDE1_DEPTH, mode=Mode.SUBTRACT)

    # Fillet10
    fillet10_edges = [body_3_1.edges().sort_by_distance(p)[0] for p in [
        (0, -5, 10),
    ]]
    fillet(fillet10_edges, radius=FILLET10_R)


solid = body_3_1.part
